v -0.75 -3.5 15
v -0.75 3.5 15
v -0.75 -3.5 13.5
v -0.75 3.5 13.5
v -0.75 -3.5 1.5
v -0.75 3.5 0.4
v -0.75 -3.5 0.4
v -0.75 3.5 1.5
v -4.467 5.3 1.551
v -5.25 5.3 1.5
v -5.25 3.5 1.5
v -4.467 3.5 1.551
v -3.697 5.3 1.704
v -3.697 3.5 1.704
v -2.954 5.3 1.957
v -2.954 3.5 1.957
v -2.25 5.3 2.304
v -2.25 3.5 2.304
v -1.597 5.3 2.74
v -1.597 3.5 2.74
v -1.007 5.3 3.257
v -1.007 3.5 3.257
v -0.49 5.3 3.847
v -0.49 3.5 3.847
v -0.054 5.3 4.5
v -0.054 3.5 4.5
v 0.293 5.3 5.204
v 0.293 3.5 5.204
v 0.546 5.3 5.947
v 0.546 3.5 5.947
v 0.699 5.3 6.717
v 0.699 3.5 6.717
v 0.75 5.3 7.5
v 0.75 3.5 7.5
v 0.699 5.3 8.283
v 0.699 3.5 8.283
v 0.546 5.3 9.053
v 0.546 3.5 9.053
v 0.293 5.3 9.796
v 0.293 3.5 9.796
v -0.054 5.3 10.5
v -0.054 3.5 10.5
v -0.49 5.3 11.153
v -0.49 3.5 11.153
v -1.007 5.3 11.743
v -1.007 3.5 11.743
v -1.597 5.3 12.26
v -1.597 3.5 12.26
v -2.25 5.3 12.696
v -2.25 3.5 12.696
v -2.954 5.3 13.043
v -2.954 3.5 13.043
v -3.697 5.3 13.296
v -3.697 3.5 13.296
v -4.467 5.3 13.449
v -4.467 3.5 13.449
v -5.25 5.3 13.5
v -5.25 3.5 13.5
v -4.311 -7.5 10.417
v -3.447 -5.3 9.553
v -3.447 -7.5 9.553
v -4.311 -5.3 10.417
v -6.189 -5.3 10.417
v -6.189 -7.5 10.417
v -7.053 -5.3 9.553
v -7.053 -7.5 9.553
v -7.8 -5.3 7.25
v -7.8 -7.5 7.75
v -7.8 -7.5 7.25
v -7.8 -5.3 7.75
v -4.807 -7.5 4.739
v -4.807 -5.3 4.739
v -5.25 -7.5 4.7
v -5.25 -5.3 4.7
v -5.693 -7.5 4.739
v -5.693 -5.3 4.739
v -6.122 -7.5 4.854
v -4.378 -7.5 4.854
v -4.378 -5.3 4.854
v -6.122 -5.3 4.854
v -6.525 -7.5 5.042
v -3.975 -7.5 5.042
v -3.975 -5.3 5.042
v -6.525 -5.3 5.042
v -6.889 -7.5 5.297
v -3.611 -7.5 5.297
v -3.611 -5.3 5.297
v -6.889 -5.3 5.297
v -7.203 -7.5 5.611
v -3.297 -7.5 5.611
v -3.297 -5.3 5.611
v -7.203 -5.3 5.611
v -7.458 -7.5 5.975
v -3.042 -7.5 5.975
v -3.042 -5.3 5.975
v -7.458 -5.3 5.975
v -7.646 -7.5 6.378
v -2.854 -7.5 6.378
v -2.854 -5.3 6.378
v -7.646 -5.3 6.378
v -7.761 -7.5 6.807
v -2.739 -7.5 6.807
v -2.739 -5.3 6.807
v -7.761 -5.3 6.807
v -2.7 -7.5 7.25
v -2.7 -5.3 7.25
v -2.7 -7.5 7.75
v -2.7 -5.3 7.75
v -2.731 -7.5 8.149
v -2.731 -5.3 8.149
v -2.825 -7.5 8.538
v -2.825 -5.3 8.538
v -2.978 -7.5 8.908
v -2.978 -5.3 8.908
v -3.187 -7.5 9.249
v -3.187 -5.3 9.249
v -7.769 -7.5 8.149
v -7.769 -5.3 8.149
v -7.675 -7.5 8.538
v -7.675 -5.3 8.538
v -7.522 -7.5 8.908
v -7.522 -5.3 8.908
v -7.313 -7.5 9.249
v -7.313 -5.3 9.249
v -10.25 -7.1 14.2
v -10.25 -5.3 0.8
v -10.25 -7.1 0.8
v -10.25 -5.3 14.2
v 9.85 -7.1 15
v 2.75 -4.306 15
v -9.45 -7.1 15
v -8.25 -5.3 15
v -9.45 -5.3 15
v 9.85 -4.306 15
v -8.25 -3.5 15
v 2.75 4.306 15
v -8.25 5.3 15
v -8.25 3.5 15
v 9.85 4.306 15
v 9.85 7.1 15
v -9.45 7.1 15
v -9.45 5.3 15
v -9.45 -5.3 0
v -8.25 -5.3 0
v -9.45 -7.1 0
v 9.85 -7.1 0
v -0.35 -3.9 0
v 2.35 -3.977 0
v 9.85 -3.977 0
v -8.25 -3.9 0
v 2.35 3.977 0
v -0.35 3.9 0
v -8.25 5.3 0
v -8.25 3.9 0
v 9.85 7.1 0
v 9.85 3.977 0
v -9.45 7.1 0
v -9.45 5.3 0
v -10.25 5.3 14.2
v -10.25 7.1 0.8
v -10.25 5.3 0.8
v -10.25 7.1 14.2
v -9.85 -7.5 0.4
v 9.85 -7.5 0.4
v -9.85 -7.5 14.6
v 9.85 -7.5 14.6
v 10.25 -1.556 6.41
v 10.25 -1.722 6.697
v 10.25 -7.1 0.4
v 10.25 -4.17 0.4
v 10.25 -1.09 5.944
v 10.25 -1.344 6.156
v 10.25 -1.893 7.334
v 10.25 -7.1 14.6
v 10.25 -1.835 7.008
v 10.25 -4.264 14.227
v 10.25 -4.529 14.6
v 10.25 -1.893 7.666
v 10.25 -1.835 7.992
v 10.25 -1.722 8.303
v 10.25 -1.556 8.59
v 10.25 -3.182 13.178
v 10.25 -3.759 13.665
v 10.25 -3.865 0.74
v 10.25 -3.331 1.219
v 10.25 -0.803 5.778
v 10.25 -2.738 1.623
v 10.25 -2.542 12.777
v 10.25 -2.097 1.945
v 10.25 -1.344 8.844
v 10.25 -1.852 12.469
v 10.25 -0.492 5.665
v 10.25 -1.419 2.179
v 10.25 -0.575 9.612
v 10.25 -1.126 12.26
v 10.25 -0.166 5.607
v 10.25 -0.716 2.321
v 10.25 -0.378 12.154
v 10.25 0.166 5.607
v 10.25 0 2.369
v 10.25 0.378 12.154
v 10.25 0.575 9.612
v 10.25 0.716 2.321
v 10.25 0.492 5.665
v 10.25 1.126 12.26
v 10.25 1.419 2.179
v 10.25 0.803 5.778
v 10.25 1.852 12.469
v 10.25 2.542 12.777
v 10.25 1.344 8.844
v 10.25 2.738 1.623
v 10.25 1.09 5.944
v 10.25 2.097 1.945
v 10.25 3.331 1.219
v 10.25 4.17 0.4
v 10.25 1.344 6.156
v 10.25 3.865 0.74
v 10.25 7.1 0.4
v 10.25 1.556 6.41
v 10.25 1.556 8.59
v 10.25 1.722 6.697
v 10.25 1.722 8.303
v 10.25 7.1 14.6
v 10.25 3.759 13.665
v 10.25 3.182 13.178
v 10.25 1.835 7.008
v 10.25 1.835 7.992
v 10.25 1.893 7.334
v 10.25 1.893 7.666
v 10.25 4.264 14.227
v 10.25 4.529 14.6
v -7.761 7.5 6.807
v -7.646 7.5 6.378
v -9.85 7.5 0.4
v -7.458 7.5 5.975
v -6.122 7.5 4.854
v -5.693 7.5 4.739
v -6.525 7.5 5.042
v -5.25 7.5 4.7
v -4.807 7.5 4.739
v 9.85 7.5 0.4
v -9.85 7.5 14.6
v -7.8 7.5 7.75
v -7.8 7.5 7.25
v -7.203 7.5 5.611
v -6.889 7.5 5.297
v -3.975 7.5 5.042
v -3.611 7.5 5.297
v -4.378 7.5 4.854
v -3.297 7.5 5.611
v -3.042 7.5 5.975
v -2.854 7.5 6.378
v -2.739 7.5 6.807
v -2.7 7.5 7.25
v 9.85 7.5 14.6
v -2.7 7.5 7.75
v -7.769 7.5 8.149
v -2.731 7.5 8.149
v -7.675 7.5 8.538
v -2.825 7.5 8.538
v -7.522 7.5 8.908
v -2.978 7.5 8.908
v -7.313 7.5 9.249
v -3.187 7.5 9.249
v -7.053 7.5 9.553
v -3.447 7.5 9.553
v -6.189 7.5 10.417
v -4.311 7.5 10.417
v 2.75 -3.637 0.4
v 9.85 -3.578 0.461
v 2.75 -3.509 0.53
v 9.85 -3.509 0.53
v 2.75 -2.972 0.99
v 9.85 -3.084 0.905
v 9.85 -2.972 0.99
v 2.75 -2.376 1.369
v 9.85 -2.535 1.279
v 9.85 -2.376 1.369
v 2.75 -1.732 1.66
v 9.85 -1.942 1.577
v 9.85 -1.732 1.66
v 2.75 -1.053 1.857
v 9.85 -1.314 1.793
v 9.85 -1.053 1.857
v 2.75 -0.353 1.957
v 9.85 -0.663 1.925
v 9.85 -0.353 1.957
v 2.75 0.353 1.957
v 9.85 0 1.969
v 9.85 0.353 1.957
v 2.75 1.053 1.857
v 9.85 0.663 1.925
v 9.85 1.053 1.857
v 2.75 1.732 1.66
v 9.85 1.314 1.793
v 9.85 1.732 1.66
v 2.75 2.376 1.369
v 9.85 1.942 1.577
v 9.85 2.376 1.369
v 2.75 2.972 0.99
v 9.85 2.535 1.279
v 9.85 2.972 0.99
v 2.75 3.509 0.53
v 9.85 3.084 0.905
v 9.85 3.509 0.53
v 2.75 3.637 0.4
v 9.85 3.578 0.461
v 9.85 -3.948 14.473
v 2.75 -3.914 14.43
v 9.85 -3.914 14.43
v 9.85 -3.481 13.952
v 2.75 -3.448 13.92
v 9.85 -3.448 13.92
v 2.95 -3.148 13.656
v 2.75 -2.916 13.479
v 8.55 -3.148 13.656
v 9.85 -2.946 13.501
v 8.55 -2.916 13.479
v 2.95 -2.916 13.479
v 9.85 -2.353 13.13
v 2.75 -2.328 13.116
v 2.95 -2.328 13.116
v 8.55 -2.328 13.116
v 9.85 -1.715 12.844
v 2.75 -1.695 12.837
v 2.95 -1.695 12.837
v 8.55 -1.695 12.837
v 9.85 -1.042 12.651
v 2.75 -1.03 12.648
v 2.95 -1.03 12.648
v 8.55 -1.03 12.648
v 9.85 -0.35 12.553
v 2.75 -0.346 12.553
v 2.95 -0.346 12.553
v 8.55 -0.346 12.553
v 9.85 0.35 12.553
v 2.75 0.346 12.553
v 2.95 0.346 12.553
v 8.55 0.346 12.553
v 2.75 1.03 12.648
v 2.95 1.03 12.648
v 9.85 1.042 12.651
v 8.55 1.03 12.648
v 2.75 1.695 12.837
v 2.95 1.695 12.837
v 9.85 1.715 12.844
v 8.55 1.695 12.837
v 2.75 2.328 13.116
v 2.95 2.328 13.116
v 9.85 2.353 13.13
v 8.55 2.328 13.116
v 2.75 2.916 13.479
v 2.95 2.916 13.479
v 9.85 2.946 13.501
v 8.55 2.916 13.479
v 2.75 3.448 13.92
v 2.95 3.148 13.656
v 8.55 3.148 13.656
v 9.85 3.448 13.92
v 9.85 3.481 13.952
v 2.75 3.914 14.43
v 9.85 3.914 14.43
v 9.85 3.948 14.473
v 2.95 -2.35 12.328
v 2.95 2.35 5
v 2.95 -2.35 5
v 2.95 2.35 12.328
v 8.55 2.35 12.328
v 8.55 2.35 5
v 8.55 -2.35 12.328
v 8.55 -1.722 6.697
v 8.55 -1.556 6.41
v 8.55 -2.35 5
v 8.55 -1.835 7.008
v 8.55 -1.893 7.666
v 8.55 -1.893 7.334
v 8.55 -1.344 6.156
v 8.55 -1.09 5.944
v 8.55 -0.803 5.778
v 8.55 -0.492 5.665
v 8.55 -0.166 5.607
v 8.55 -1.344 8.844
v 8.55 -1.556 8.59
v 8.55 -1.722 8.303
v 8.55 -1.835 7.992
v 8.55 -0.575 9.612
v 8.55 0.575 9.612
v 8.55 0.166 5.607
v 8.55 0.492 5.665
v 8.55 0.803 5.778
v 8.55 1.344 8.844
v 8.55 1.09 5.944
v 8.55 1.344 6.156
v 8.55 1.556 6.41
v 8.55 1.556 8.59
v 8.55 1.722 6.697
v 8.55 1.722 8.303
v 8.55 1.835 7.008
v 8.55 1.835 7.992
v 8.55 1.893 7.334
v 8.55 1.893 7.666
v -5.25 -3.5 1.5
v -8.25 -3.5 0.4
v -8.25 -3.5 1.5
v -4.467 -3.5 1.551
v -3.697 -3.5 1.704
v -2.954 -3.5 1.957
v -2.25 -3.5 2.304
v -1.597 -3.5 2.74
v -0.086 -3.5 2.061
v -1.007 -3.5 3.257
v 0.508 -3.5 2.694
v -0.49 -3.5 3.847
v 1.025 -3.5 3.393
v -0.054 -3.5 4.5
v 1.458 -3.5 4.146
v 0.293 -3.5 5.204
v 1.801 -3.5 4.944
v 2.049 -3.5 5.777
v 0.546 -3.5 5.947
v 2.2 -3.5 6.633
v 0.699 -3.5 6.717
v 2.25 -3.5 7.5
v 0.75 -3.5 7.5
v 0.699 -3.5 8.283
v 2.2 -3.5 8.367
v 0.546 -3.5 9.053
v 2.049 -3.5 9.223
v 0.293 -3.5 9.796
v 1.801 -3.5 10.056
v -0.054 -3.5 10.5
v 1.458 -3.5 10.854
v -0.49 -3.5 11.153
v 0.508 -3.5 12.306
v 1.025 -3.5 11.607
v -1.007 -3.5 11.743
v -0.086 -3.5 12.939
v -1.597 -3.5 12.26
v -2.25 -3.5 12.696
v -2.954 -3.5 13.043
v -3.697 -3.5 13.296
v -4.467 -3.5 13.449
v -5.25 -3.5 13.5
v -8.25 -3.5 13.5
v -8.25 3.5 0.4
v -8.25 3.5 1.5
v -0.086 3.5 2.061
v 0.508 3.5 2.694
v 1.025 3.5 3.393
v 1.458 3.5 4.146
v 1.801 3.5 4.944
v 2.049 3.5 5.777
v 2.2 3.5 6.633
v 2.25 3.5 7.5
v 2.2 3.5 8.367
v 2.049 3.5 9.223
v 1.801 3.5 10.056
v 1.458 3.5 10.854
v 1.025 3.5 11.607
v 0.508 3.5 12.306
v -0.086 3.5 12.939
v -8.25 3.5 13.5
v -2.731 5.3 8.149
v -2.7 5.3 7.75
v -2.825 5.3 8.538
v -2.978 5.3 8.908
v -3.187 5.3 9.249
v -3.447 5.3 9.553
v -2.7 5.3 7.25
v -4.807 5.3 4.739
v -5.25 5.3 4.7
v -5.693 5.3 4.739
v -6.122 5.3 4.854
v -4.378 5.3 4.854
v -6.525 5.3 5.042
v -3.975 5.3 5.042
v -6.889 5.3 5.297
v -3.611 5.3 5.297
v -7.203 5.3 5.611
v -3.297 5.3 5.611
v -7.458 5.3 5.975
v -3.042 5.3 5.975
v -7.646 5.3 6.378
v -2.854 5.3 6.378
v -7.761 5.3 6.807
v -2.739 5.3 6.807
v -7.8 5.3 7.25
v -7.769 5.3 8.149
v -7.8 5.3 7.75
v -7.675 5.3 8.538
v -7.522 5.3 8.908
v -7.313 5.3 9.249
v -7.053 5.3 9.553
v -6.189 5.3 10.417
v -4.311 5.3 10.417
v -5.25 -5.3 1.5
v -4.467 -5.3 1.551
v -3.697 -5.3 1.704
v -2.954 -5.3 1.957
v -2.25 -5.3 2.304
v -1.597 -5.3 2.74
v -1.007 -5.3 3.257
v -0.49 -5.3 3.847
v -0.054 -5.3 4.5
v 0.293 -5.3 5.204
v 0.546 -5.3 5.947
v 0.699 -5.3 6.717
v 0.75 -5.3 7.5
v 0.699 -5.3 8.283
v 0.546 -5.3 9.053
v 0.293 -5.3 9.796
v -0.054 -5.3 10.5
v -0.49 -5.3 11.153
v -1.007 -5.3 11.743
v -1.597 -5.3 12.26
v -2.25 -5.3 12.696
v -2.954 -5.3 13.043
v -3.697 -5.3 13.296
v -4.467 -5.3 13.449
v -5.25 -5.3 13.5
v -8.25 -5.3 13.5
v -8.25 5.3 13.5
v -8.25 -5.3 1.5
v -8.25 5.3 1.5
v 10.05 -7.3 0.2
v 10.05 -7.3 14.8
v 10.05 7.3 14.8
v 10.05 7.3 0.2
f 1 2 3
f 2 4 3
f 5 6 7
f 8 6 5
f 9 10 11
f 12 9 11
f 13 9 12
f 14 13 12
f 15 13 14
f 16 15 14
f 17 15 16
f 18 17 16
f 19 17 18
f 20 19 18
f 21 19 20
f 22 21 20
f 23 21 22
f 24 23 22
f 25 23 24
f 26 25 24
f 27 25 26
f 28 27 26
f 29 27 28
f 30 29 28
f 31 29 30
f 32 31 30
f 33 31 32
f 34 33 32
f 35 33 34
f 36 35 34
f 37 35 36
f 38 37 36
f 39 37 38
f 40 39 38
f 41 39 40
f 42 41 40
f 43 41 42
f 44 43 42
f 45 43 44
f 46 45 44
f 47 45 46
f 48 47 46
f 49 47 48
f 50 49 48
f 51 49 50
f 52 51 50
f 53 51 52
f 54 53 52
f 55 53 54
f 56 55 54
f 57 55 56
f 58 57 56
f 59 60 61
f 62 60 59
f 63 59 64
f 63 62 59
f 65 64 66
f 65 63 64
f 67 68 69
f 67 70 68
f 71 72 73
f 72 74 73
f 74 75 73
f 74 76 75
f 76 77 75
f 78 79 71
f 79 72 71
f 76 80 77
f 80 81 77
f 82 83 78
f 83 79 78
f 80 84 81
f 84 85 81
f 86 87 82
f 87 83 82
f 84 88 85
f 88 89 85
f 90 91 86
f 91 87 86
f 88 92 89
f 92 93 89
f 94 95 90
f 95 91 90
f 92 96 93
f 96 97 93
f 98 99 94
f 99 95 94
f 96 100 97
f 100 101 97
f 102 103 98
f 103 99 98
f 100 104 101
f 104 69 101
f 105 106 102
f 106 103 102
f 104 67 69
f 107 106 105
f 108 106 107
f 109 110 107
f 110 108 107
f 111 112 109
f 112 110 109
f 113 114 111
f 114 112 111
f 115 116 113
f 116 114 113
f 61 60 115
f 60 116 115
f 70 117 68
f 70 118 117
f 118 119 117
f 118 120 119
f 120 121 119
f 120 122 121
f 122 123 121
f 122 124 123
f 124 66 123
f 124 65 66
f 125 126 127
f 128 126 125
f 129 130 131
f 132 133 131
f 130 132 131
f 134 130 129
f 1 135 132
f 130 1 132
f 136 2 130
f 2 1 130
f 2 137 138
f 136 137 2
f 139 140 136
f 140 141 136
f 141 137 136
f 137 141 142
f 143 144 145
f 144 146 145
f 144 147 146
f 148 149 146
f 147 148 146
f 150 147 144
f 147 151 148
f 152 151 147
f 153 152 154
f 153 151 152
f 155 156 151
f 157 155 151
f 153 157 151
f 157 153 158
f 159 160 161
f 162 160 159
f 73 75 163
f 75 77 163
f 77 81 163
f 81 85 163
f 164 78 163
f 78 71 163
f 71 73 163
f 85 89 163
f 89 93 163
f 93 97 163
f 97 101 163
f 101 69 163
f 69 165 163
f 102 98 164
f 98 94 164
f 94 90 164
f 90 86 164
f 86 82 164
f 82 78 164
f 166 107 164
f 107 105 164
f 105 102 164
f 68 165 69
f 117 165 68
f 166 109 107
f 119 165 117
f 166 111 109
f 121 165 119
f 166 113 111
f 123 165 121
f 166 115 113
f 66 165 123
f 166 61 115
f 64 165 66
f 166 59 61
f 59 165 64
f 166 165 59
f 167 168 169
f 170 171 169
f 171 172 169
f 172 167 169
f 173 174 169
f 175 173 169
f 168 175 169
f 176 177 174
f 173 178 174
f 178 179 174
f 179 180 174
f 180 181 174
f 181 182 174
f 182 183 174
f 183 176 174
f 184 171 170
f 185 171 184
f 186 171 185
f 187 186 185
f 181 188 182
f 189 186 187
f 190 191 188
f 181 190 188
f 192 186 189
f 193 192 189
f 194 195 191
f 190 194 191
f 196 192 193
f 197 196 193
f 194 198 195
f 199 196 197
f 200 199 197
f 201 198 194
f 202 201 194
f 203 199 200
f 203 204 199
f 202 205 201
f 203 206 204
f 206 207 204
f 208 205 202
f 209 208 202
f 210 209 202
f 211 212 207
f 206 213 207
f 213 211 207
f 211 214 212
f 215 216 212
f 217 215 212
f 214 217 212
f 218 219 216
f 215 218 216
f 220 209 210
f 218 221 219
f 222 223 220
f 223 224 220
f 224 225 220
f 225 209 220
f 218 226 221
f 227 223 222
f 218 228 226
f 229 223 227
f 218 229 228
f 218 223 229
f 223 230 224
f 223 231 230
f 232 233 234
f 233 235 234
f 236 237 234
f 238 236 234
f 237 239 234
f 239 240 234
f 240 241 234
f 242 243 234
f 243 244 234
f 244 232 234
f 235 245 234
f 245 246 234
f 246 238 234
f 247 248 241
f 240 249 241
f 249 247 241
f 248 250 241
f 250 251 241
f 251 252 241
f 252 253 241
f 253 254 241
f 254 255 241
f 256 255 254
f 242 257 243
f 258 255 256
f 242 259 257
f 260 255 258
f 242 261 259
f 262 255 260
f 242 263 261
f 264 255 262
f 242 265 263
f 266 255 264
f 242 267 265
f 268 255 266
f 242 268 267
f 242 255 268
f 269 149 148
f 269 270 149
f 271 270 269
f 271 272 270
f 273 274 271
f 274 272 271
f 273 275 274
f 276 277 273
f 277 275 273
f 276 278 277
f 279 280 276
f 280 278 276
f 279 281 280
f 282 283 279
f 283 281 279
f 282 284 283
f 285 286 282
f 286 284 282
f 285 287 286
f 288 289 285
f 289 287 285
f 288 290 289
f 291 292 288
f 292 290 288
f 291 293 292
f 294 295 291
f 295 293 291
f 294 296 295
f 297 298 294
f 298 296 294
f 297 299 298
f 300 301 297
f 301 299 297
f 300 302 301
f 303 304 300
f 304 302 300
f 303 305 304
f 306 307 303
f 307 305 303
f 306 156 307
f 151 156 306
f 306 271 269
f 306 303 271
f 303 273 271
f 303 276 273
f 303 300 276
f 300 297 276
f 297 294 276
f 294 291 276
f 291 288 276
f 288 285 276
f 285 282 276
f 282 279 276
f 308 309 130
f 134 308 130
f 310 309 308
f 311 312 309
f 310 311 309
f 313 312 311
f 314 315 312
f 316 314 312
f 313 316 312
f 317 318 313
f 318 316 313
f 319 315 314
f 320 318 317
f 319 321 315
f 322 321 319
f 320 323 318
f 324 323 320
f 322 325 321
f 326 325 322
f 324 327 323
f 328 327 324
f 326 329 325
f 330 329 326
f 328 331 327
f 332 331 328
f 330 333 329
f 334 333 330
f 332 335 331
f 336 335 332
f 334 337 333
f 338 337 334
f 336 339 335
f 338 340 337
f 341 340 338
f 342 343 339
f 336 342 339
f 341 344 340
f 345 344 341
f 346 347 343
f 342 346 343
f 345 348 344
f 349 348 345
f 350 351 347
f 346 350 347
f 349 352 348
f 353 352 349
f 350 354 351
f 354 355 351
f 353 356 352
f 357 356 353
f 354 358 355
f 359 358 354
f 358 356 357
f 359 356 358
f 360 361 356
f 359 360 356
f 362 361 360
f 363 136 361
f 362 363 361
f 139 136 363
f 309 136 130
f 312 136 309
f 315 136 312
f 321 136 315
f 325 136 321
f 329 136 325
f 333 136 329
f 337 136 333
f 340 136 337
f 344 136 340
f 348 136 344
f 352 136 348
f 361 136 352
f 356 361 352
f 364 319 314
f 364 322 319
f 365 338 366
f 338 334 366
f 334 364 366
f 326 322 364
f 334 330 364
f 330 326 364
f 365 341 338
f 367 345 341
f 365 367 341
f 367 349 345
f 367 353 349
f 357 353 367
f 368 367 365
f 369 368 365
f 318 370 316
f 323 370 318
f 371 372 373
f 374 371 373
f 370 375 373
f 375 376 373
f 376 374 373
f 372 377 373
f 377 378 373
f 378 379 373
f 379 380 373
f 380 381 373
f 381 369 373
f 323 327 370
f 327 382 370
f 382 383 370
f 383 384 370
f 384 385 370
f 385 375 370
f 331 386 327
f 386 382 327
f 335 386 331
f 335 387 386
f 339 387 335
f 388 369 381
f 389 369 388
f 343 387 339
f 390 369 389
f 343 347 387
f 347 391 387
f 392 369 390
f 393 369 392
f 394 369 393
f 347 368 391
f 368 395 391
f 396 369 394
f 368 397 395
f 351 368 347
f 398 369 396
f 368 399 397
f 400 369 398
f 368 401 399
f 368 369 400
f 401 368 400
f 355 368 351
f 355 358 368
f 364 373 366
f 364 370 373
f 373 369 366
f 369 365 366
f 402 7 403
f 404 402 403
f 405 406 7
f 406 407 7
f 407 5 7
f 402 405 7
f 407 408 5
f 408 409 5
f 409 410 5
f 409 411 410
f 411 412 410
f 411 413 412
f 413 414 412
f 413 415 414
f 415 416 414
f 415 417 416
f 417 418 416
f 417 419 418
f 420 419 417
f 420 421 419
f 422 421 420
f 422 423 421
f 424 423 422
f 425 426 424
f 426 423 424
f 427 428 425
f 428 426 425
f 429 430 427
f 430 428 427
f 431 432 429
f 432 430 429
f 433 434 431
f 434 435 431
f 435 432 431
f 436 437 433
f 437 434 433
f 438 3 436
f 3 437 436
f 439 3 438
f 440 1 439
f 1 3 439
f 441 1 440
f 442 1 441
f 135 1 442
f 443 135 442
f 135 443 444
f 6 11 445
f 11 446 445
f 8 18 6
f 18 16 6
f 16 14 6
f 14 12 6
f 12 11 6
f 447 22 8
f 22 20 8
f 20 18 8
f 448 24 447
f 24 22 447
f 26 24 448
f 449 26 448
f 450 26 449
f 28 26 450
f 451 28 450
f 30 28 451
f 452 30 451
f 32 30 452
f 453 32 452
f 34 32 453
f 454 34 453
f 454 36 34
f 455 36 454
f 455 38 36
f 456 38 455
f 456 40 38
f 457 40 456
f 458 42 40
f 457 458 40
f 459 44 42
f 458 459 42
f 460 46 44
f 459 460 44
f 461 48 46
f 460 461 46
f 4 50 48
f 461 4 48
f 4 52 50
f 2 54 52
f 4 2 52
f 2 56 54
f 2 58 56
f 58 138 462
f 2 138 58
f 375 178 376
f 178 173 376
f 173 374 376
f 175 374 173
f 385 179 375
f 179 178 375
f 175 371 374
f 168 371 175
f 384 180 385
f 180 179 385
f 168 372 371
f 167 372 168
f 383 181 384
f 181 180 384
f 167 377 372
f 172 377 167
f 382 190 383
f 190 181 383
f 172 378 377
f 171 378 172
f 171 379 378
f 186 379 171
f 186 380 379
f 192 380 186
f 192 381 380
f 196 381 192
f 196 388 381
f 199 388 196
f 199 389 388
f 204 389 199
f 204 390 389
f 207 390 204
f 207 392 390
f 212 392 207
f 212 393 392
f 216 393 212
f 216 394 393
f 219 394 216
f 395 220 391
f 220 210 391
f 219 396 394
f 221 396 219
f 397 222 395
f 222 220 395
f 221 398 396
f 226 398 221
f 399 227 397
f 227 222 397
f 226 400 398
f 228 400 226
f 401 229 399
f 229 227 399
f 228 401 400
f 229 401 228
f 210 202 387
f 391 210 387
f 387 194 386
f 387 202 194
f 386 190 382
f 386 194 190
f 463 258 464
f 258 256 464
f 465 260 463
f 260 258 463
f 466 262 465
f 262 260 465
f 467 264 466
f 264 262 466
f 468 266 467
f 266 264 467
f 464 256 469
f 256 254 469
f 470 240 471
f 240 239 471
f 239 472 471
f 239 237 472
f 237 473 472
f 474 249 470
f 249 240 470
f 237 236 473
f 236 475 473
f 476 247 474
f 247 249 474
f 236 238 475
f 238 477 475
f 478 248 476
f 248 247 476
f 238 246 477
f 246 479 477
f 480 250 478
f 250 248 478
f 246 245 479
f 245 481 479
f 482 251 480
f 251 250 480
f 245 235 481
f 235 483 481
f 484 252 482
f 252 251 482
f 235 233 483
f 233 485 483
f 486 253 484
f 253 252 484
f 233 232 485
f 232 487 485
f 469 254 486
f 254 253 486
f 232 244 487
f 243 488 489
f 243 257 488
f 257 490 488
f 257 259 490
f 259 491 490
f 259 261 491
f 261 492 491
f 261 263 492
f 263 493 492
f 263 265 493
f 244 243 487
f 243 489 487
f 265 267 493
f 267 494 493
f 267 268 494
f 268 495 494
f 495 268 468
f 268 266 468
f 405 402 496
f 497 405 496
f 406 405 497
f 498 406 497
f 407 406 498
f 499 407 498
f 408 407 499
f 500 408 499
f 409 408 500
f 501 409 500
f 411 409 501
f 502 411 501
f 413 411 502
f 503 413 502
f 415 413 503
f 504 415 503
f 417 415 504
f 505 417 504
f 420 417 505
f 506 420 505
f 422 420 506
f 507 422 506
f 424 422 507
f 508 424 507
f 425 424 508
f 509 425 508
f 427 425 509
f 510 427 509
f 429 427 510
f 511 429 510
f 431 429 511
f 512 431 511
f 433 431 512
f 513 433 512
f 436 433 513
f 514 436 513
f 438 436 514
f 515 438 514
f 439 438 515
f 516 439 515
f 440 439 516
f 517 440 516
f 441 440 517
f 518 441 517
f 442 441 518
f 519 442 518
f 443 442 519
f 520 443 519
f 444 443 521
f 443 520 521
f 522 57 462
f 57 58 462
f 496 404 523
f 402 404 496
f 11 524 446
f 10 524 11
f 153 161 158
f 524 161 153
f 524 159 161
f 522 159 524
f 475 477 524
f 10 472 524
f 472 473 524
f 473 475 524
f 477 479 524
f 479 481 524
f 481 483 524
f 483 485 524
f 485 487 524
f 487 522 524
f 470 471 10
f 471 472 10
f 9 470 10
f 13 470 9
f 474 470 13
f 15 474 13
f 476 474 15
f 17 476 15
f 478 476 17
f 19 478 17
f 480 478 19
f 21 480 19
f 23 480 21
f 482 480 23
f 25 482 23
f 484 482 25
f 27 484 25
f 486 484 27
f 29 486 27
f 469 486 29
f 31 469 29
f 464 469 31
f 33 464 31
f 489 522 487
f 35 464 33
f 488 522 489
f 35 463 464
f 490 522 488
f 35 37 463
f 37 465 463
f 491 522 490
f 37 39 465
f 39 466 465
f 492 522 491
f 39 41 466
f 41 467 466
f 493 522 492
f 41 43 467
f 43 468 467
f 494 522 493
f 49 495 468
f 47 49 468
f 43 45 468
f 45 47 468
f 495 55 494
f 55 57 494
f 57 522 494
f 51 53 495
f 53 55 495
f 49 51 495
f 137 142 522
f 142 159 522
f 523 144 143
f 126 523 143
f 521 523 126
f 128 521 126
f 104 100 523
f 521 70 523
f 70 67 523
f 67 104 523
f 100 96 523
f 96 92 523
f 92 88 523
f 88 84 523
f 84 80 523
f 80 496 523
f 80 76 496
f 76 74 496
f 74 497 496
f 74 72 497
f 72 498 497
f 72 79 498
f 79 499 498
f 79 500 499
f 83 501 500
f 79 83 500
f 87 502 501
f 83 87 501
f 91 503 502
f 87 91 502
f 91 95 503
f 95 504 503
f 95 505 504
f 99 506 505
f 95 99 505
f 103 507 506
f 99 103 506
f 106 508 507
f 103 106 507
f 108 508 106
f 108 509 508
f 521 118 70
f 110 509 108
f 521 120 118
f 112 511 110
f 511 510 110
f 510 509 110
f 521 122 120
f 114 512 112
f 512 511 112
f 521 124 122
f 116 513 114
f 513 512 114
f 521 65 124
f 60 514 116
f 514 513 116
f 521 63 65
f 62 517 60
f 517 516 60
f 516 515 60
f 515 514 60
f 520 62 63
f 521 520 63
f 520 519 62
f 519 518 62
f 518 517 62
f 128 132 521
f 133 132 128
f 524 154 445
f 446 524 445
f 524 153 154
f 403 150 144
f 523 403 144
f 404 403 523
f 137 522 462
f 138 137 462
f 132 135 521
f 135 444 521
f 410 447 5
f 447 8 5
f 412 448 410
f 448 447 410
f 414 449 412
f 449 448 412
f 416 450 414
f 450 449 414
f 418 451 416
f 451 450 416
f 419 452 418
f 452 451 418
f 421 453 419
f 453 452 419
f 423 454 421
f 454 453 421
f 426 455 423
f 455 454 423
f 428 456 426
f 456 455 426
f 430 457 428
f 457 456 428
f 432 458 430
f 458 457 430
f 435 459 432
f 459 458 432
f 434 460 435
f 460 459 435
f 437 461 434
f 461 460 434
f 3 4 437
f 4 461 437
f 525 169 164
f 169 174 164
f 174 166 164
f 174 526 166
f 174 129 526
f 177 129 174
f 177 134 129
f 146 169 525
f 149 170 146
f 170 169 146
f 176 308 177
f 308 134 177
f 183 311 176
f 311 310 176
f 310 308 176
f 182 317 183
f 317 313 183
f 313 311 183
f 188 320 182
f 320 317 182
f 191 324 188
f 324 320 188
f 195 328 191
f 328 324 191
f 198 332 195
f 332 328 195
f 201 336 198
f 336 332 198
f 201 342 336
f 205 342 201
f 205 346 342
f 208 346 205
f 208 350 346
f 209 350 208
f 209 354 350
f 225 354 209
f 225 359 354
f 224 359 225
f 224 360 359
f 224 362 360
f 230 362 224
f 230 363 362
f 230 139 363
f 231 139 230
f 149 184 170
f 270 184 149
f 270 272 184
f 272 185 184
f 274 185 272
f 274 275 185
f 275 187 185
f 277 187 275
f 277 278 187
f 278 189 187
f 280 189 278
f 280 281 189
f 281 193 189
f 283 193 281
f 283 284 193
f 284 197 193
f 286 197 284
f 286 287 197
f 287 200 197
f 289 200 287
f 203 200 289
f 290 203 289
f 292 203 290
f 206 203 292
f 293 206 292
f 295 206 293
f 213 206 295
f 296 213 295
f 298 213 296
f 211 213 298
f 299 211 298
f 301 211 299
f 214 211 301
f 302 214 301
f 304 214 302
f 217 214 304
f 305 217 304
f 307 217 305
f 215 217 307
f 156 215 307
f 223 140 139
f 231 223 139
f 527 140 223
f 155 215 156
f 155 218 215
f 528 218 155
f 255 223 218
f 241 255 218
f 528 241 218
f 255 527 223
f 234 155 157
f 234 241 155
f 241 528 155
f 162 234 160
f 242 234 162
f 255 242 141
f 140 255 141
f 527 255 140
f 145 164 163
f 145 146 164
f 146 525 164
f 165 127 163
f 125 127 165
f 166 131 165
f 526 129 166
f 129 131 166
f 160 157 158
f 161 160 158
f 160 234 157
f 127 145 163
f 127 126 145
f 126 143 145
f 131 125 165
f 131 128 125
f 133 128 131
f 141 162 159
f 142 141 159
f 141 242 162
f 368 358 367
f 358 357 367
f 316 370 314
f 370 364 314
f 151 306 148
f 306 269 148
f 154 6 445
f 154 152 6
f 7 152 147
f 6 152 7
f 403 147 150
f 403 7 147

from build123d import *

# Parameters (mm, degrees)
SKETCH_1_W               = 20.5
SKETCH_1_H               = 15
EXTRUDE_1_DEPTH          = 15
CUT_EXTRUDE_1_DEPTH      = 27.485845276
CUT_EXTRUDE_1_DEPTH_BACK = 7.5
SKETCH_2_R               = 5
SKETCH_4_W               = 5.6
SKETCH_4_H               = 4.7
CUT_EXTRUDE_4_DEPTH      = 10
SKETCH_5_W               = 9.5
SKETCH_5_H               = 7
CUT_EXTRUDE_5_DEPTH      = 20.654834011
CUT_EXTRUDE_2_DEPTH      = 7.3
CUT_EXTRUDE_6_DEPTH      = 24.55976443
CUT_EXTRUDE_START        = -1.8
CUT_EXTRUDE_7_DEPTH      = 10.6
SKETCH_11_W              = 15.106844648
SKETCH_11_H              = 10.6
CUT_EXTRUDE_8_DEPTH      = 2
SKETCH_12_R              = 7.5
CUT_EXTRUDE_9_DEPTH      = 7
CHAMFER_1_SIZE           = 0.4
CHAMFER_2_SIZE           = 0.4
CHAMFER_4_SIZE           = 0.8
CHAMFER_7_SIZE           = 0.8
CHAMFER_8_SIZE           = 0.4


# Some blends are built 0.0001 mm under size
with BuildPart() as part:
    # 草图1 → 凸台-拉伸1 (new body)
    with BuildSketch(Plane.XY):
        Rectangle(SKETCH_1_W, SKETCH_1_H)
    extrude(amount=EXTRUDE_1_DEPTH)

    # 草图2 → 切除-拉伸1 (cut, two sides: drawn at the far end of the back side and taken through both)
    with BuildSketch(Plane(origin=(10.25, 0, 0), x_dir=(0, 0, -1), z_dir=(1, 0, 0)).offset(-CUT_EXTRUDE_1_DEPTH_BACK)):
        with Locations((-17.541169992, 0)):
            Circle(SKETCH_2_R)
        with Locations((3.030989937, 0)):
            Circle(SKETCH_2_R)
    extrude(amount=CUT_EXTRUDE_1_DEPTH + CUT_EXTRUDE_1_DEPTH_BACK, mode=Mode.SUBTRACT)

    # 草图4 → 切除-拉伸4 (cut)
    with BuildSketch(Plane.XY.offset(15)):
        with Locations((5.75, 0)):
            Rectangle(SKETCH_4_W, SKETCH_4_H)
    extrude(amount=-CUT_EXTRUDE_4_DEPTH, mode=Mode.SUBTRACT)

    # 草图5 → 切除-拉伸5 (cut, through all)
    with BuildSketch(Plane.XY.offset(15)):
        with Locations((-5.5, 0)):
            Rectangle(SKETCH_5_W, SKETCH_5_H)
    extrude(amount=-CUT_EXTRUDE_5_DEPTH, mode=Mode.SUBTRACT)

    # 草图3 → 切除-拉伸2 (cut)
    with BuildSketch(Plane(origin=(10.25, 0, 0), x_dir=(0, 0, -1), z_dir=(1, 0, 0))):
        with BuildLine():
            Line((-9.612291748, -0.57471402), (-8.843502884, -1.343502884))
            ThreePointArc((-8.843502884, -1.343502884), (-5.6, 0), (-8.843502884, 1.343502884))
            Line((-8.843502884, 1.343502884), (-9.612291748, 0.57471402))
            Line((-9.612291748, 0.57471402), (-9.612291748, -0.57471402))
        make_face()
    extrude(amount=-CUT_EXTRUDE_2_DEPTH, mode=Mode.SUBTRACT)

    # 草图9 → 切除-拉伸6 (cut, through all)
    with BuildSketch(Plane(origin=(0, 7.5, 0), x_dir=(1, 0, 0), z_dir=(0, 1, 0))):
        with BuildLine():
            Line((-7.8, -7.25), (-7.8, -7.75))
            ThreePointArc((-7.8, -7.75), (-7.605892808, -8.725842753), (-7.053122292, -9.553122292))
            Line((-7.053122292, -9.553122292), (-6.188762276, -10.417482308))
            Line((-6.188762276, -10.417482308), (-4.311237724, -10.417482308))
            Line((-4.311237724, -10.417482308), (-3.446877708, -9.553122292))
            ThreePointArc((-3.446877708, -9.553122292), (-2.894107192, -8.725842753), (-2.7, -7.75))
            Line((-2.7, -7.75), (-2.7, -7.25))
            ThreePointArc((-2.7, -7.25), (-5.25, -4.7), (-7.8, -7.25))
        make_face()
    extrude(amount=-CUT_EXTRUDE_6_DEPTH, mode=Mode.SUBTRACT)

    # 草图10 → 切除-拉伸7 (cut)
    with BuildSketch(Plane.XZ.offset(-3.5).offset(CUT_EXTRUDE_START)):
        with BuildLine():
            Line((-5.25, 13.5), (-10.25, 13.5))
            Line((-10.25, 13.5), (-10.25, 1.5))
            Line((-10.25, 1.5), (-5.25, 1.5))
            ThreePointArc((-5.25, 1.5), (0.75, 7.5), (-5.25, 13.5))
        make_face()
    extrude(amount=CUT_EXTRUDE_7_DEPTH, mode=Mode.SUBTRACT)

    # 草图11 → 切除-拉伸8 (cut)
    with BuildSketch(Plane.ZY.offset(10.25)):
        with Locations((7.446577676, 0)):
            Rectangle(SKETCH_11_W, SKETCH_11_H)
    extrude(amount=-CUT_EXTRUDE_8_DEPTH, mode=Mode.SUBTRACT)

    # 草图12 → 切除-拉伸9 (cut)
    with BuildSketch(Plane.XZ.offset(-3.5)):
        with Locations((-5.25, 7.5)):
            Circle(SKETCH_12_R)
    extrude(amount=CUT_EXTRUDE_9_DEPTH, mode=Mode.SUBTRACT)

    # 倒角1
    chamfer_1_edges = [part.edges().sort_by_distance(p)[0] for p in [
        (10.25, 5.903047554, 15),
        (10.25, -5.738284436, 0),
        (10.25, -5.903047554, 15),
        (10.25, 0, 12.541169992),
        (10.25, 0, 1.969010063),
        (10.25, 5.738284436, 0),
        (10.25, 7.5, 7.5),
        (10.25, -7.5, 7.5),
    ]]
    chamfer(chamfer_1_edges, length=CHAMFER_1_SIZE)

    # 倒角2
    chamfer_2_edges = [part.edges().sort_by_distance(p)[0] for p in [
        (-0.2, 7.5, 15),
        (-0.2, 7.5, 0),
        (-0.2, -7.5, 0),
        (-10.25, 7.5, 7.5),
        (-10.25, -7.5, 7.5),
        (-0.2, -7.5, 15),
    ]]
    chamfer(chamfer_2_edges, length=CHAMFER_2_SIZE)

    # 倒角4
    chamfer_4_edges = [part.edges().sort_by_distance(p)[0] for p in [
        (-10.25, 6.2, 0),
        (-10.25, -6.2, 0),
        (-10.25, -6.2, 15),
        (-10.25, 6.2, 15),
    ]]
    chamfer(chamfer_4_edges, length=CHAMFER_4_SIZE - 0.0001)  # a hair under: the kernel refuses the full size

    # 倒角7
    # the kernel refuses this chamfer: 0.8 mm, written as the material it takes off along each edge
    with BuildSketch(Plane(origin=(2.95, -2.35, 13.127837918), x_dir=(0, -0.8336429325250914, 0.5523037760607525), z_dir=(1, 0, 0))) as chamfer_7_piece_1:
        with BuildLine():
            Line((0.956878157, 0), (-CHAMFER_7_SIZE * 0.552303776061, CHAMFER_7_SIZE * 0.833642932525))
            Line((-CHAMFER_7_SIZE * 0.552303776061, CHAMFER_7_SIZE * 0.833642932525), (0, 0))
            ThreePointArc((0, 0), (0.492968028, 0.022921924), (0.956878157, 0))
        make_face()
    extrude(amount=5.6, mode=Mode.SUBTRACT)
    with BuildSketch(Plane(origin=(2.95, 2.35, 13.127837918), x_dir=(0, 0.8336429325250913, 0.5523037760607528), z_dir=(1, 0, 0))) as chamfer_7_piece_2:
        with BuildLine():
            Line((0.956878157, 0), (-CHAMFER_7_SIZE * 0.552303776061, -CHAMFER_7_SIZE * 0.833642932525))
            Line((-CHAMFER_7_SIZE * 0.552303776061, -CHAMFER_7_SIZE * 0.833642932525), (0, 0))
            ThreePointArc((0, 0), (0.492968028, -0.022921924), (0.956878157, 0))
        make_face()
    extrude(amount=5.6, mode=Mode.SUBTRACT)

    # 倒角8
    chamfer_8_edges = [part.edges().sort_by_distance(p)[0] for p in [
        (2.75, 0, 0),
        (-4.5, -3.5, 0),
        (-0.75, 0, 0),
        (-4.5, 3.5, 0),
    ]]
    chamfer(chamfer_8_edges, length=CHAMFER_8_SIZE)


solid = part.part
